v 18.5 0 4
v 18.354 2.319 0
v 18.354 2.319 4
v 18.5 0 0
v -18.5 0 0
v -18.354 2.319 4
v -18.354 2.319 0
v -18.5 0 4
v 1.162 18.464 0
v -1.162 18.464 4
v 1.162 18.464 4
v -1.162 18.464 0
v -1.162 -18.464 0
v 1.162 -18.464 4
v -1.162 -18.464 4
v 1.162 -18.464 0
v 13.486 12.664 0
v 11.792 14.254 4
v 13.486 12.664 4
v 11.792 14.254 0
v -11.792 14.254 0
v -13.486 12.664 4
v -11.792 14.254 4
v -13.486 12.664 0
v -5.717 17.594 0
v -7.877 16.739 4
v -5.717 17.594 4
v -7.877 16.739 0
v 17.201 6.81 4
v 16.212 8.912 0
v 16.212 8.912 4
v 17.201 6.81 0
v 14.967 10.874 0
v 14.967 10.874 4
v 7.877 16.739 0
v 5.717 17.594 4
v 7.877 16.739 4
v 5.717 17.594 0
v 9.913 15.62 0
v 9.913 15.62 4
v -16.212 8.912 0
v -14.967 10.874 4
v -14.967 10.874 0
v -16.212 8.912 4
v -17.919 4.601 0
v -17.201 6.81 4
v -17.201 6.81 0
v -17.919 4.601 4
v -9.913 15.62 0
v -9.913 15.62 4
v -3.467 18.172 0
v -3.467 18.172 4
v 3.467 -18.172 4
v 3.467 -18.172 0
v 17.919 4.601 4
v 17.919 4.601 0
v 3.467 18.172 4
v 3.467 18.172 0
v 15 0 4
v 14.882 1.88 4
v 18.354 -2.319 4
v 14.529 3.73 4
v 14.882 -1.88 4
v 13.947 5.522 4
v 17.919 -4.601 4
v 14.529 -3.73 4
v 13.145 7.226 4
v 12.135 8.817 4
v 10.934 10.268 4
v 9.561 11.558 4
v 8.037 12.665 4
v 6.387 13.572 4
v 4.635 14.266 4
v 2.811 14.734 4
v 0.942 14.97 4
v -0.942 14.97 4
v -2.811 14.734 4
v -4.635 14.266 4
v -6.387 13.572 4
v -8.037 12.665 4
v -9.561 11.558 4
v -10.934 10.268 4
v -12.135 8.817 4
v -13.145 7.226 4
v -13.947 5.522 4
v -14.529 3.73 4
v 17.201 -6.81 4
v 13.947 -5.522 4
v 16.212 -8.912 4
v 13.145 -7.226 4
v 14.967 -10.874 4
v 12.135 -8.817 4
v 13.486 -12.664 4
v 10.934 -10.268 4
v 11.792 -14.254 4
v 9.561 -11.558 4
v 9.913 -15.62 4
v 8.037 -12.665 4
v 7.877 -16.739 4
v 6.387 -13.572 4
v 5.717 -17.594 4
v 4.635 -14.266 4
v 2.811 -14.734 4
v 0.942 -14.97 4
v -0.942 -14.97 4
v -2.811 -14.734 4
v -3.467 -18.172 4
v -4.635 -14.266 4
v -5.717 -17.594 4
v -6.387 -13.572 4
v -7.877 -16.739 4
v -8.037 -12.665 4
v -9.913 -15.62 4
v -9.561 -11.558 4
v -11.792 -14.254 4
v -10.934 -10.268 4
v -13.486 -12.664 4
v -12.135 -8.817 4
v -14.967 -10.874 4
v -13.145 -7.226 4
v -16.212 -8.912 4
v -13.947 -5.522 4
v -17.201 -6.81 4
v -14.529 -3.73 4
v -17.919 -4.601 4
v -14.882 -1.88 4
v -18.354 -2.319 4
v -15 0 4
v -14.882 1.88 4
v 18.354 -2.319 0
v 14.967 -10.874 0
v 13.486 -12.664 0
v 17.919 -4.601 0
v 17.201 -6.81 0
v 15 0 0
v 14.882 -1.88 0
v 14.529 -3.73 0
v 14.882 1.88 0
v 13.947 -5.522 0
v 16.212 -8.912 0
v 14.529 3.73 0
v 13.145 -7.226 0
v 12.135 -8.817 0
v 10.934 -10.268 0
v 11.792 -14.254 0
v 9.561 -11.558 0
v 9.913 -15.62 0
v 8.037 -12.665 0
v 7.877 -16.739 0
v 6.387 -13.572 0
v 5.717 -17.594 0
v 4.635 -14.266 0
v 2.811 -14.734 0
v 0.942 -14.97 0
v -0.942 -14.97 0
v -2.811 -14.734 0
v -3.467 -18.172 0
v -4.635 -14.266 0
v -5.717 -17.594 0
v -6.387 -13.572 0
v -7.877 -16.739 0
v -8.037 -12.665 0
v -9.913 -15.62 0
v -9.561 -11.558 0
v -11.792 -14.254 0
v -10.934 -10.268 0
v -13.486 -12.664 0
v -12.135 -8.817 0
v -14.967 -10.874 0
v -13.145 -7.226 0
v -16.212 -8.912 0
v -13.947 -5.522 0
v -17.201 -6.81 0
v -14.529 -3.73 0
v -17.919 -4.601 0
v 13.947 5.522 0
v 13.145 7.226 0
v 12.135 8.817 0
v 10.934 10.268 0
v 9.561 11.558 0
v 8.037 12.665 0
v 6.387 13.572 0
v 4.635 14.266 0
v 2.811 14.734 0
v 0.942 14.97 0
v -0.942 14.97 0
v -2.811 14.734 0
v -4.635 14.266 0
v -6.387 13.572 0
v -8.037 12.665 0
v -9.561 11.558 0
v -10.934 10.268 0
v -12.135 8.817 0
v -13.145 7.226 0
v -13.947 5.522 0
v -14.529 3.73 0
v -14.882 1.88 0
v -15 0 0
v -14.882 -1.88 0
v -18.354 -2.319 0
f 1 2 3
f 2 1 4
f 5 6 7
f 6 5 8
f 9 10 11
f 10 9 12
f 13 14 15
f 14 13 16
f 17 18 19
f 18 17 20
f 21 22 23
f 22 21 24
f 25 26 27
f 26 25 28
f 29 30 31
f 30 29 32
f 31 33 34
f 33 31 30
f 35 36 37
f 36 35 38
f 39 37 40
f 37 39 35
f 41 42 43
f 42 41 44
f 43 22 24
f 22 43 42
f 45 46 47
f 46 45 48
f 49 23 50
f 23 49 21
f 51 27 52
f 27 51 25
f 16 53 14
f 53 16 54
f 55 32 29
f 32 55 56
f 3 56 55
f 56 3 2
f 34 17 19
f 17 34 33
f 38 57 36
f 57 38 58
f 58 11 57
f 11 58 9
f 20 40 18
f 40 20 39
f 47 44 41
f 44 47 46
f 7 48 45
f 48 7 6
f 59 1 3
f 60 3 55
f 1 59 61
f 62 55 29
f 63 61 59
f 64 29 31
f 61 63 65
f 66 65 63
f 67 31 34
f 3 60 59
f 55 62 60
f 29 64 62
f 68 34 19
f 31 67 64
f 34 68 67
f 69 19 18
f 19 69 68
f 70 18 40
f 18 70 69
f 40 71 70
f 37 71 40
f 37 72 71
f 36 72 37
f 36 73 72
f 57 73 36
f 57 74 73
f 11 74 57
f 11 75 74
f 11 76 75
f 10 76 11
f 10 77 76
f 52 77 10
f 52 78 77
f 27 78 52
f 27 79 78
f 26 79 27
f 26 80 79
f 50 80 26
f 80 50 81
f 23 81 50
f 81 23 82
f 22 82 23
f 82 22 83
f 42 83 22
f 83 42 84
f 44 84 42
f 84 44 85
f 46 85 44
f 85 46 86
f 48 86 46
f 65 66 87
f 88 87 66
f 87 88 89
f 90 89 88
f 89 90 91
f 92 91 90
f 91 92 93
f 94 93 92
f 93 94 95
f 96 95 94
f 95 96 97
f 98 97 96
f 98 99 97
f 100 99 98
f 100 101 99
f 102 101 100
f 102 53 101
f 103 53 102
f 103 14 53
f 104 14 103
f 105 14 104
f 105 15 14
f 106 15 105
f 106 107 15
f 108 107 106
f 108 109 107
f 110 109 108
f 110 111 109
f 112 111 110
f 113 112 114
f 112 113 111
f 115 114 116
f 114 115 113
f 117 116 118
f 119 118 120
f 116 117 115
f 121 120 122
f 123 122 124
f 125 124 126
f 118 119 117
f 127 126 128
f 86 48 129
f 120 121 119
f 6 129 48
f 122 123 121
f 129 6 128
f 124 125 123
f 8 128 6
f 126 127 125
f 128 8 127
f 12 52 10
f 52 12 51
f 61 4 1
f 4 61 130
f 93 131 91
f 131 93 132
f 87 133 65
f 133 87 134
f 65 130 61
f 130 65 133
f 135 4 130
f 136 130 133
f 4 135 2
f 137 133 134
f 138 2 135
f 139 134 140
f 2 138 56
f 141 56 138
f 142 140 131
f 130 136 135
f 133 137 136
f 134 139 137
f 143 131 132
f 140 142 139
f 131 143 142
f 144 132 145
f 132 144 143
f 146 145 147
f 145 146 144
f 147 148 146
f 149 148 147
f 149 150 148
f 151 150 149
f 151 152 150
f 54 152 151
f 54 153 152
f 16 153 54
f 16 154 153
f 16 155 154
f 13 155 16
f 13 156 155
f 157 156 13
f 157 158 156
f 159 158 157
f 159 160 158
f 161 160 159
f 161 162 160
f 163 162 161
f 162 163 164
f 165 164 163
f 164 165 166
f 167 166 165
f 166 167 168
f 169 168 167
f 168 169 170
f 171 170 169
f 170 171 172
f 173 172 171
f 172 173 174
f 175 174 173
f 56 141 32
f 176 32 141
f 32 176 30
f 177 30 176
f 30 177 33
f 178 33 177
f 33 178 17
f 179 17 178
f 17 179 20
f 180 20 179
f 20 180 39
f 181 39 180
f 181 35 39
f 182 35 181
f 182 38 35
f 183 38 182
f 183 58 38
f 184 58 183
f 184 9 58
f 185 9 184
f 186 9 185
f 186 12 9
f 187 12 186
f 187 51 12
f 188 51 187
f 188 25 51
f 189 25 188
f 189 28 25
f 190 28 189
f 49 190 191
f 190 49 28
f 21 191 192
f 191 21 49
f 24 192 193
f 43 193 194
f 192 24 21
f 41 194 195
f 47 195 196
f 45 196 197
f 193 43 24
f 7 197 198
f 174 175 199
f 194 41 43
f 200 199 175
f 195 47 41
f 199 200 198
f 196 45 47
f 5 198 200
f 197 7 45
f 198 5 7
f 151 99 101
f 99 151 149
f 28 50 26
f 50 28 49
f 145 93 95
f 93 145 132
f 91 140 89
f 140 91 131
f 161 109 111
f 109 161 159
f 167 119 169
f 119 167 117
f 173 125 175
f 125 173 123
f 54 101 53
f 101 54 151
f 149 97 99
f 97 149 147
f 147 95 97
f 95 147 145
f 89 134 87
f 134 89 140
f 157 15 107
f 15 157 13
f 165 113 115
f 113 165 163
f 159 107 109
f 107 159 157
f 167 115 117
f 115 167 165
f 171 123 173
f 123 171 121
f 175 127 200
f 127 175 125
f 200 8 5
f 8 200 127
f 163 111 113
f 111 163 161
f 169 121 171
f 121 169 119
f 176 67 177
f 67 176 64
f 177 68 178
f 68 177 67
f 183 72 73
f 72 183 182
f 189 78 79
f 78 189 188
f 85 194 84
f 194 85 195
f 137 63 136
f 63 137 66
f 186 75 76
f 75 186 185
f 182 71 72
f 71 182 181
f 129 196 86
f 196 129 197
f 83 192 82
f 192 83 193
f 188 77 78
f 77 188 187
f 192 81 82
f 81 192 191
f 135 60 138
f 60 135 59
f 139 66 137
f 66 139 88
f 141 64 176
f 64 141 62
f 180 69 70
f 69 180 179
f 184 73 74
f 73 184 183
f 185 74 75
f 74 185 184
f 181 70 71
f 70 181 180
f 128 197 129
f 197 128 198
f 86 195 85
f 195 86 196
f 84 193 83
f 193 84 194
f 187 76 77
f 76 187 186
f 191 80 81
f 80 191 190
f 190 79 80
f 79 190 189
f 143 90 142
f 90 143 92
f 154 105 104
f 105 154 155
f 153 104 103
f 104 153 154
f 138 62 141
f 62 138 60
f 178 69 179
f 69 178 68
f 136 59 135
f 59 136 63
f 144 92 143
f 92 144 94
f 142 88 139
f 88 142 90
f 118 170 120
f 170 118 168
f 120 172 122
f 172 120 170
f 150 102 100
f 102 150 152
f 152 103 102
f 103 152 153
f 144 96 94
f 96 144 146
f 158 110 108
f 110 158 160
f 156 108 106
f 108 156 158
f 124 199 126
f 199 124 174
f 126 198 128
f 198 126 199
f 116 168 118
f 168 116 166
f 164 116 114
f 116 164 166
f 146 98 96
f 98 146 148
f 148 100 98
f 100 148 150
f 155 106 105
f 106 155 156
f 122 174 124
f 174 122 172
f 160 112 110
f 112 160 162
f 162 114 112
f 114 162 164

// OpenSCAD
$fn = 50;


difference() {
	union() {
		translate(v = [0, 0, 0]) {
			rotate(a = [0, 0, 0]) {
				cylinder(h = 4, r = 18.5000000000);
			}
		}
	}
	union() {
		translate(v = [0, 0, 0]) {
			rotate(a = [0, 0, 0]) {
				cylinder(h = 4, r = 15.0000000000);
			}
		}
	}
}
